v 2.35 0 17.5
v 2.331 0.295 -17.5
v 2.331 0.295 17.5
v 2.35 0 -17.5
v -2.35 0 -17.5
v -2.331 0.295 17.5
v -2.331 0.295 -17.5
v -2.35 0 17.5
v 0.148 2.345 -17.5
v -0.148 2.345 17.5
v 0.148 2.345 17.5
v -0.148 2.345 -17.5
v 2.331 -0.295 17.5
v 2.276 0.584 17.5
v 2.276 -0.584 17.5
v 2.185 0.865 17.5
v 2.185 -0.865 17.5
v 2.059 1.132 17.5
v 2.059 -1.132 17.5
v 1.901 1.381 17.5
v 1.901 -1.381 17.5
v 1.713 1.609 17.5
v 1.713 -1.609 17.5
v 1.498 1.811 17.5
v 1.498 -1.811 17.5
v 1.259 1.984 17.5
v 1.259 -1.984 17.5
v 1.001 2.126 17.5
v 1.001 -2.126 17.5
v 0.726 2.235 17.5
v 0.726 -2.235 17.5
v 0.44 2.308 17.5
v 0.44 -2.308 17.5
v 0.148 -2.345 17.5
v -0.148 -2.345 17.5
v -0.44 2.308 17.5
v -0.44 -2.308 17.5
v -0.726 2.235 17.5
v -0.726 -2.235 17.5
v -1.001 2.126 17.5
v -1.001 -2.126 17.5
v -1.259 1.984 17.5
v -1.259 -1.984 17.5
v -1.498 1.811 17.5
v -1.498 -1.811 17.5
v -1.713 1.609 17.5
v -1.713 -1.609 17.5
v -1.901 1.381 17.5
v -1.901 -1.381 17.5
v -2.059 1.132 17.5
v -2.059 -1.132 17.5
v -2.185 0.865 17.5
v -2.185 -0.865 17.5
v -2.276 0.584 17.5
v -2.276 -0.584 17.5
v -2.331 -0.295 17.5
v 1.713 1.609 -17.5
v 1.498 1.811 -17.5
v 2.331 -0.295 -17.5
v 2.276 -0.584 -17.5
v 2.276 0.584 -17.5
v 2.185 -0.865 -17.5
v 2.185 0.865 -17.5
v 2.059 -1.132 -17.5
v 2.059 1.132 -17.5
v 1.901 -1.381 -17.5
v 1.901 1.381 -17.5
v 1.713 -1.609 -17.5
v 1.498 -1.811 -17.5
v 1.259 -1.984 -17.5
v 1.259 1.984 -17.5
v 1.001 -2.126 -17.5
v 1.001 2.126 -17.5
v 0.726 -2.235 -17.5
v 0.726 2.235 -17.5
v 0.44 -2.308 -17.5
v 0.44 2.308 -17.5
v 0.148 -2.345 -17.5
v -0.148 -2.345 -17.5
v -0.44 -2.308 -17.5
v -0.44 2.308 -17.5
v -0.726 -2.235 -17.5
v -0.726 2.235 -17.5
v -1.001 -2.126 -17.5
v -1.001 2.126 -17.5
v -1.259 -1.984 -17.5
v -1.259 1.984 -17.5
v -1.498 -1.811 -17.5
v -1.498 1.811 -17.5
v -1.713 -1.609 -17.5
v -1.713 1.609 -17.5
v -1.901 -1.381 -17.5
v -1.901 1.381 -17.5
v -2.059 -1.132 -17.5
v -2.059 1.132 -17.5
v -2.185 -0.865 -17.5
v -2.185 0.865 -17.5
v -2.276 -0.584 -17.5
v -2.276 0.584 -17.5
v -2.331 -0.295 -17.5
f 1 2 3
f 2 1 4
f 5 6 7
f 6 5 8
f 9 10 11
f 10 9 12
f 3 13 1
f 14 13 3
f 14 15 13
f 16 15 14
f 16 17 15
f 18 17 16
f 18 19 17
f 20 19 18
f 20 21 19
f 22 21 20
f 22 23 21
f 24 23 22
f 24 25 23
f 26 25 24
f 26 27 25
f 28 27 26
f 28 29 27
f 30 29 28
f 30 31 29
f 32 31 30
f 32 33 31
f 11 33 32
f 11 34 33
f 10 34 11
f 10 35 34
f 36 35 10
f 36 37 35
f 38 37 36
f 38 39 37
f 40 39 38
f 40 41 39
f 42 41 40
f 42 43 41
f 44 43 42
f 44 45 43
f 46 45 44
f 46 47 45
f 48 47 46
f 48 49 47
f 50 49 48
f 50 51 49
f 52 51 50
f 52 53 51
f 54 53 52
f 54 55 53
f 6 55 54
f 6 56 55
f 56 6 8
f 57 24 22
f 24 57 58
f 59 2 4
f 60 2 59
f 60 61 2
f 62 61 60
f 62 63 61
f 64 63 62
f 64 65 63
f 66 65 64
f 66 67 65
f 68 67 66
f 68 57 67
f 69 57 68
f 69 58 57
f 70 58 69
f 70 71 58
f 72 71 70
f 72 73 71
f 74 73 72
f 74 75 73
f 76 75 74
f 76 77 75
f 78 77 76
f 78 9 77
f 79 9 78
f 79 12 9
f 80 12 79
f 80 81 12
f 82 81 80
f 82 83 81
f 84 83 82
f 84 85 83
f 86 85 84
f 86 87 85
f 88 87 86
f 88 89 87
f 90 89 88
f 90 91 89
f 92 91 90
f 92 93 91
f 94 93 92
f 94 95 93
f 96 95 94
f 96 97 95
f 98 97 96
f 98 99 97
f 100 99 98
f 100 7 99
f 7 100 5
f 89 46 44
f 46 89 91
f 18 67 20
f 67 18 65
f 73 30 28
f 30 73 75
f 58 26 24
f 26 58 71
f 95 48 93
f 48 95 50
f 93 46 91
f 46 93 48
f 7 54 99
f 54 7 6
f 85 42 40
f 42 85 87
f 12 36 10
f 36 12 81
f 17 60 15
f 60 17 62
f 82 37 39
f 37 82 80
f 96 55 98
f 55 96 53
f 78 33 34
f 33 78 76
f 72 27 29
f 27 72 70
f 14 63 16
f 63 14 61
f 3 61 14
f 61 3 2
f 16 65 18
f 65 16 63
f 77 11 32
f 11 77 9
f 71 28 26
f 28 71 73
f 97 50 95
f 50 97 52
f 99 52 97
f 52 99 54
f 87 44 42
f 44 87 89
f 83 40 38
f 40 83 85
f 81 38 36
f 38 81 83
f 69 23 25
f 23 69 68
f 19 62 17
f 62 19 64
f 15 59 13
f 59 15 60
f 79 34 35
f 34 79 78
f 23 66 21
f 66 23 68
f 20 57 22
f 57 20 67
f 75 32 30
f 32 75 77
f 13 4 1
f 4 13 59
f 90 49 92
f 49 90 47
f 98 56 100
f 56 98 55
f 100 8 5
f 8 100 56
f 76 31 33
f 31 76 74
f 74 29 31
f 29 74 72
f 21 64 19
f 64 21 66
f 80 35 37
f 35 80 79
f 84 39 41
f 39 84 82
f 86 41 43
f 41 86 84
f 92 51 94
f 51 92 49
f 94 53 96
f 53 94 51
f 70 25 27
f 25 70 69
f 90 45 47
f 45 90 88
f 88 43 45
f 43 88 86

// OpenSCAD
$fn = 50;


difference() {
	union() {
		translate(v = [0, 0, -17.5000000000]) {
			cylinder(h = 35, r = 2.3500000000);
		}
	}
	union() {
		translate(v = [0, 0, -100.0000000000]) {
			cylinder(h = 200, r = 0);
		}
	}
}
